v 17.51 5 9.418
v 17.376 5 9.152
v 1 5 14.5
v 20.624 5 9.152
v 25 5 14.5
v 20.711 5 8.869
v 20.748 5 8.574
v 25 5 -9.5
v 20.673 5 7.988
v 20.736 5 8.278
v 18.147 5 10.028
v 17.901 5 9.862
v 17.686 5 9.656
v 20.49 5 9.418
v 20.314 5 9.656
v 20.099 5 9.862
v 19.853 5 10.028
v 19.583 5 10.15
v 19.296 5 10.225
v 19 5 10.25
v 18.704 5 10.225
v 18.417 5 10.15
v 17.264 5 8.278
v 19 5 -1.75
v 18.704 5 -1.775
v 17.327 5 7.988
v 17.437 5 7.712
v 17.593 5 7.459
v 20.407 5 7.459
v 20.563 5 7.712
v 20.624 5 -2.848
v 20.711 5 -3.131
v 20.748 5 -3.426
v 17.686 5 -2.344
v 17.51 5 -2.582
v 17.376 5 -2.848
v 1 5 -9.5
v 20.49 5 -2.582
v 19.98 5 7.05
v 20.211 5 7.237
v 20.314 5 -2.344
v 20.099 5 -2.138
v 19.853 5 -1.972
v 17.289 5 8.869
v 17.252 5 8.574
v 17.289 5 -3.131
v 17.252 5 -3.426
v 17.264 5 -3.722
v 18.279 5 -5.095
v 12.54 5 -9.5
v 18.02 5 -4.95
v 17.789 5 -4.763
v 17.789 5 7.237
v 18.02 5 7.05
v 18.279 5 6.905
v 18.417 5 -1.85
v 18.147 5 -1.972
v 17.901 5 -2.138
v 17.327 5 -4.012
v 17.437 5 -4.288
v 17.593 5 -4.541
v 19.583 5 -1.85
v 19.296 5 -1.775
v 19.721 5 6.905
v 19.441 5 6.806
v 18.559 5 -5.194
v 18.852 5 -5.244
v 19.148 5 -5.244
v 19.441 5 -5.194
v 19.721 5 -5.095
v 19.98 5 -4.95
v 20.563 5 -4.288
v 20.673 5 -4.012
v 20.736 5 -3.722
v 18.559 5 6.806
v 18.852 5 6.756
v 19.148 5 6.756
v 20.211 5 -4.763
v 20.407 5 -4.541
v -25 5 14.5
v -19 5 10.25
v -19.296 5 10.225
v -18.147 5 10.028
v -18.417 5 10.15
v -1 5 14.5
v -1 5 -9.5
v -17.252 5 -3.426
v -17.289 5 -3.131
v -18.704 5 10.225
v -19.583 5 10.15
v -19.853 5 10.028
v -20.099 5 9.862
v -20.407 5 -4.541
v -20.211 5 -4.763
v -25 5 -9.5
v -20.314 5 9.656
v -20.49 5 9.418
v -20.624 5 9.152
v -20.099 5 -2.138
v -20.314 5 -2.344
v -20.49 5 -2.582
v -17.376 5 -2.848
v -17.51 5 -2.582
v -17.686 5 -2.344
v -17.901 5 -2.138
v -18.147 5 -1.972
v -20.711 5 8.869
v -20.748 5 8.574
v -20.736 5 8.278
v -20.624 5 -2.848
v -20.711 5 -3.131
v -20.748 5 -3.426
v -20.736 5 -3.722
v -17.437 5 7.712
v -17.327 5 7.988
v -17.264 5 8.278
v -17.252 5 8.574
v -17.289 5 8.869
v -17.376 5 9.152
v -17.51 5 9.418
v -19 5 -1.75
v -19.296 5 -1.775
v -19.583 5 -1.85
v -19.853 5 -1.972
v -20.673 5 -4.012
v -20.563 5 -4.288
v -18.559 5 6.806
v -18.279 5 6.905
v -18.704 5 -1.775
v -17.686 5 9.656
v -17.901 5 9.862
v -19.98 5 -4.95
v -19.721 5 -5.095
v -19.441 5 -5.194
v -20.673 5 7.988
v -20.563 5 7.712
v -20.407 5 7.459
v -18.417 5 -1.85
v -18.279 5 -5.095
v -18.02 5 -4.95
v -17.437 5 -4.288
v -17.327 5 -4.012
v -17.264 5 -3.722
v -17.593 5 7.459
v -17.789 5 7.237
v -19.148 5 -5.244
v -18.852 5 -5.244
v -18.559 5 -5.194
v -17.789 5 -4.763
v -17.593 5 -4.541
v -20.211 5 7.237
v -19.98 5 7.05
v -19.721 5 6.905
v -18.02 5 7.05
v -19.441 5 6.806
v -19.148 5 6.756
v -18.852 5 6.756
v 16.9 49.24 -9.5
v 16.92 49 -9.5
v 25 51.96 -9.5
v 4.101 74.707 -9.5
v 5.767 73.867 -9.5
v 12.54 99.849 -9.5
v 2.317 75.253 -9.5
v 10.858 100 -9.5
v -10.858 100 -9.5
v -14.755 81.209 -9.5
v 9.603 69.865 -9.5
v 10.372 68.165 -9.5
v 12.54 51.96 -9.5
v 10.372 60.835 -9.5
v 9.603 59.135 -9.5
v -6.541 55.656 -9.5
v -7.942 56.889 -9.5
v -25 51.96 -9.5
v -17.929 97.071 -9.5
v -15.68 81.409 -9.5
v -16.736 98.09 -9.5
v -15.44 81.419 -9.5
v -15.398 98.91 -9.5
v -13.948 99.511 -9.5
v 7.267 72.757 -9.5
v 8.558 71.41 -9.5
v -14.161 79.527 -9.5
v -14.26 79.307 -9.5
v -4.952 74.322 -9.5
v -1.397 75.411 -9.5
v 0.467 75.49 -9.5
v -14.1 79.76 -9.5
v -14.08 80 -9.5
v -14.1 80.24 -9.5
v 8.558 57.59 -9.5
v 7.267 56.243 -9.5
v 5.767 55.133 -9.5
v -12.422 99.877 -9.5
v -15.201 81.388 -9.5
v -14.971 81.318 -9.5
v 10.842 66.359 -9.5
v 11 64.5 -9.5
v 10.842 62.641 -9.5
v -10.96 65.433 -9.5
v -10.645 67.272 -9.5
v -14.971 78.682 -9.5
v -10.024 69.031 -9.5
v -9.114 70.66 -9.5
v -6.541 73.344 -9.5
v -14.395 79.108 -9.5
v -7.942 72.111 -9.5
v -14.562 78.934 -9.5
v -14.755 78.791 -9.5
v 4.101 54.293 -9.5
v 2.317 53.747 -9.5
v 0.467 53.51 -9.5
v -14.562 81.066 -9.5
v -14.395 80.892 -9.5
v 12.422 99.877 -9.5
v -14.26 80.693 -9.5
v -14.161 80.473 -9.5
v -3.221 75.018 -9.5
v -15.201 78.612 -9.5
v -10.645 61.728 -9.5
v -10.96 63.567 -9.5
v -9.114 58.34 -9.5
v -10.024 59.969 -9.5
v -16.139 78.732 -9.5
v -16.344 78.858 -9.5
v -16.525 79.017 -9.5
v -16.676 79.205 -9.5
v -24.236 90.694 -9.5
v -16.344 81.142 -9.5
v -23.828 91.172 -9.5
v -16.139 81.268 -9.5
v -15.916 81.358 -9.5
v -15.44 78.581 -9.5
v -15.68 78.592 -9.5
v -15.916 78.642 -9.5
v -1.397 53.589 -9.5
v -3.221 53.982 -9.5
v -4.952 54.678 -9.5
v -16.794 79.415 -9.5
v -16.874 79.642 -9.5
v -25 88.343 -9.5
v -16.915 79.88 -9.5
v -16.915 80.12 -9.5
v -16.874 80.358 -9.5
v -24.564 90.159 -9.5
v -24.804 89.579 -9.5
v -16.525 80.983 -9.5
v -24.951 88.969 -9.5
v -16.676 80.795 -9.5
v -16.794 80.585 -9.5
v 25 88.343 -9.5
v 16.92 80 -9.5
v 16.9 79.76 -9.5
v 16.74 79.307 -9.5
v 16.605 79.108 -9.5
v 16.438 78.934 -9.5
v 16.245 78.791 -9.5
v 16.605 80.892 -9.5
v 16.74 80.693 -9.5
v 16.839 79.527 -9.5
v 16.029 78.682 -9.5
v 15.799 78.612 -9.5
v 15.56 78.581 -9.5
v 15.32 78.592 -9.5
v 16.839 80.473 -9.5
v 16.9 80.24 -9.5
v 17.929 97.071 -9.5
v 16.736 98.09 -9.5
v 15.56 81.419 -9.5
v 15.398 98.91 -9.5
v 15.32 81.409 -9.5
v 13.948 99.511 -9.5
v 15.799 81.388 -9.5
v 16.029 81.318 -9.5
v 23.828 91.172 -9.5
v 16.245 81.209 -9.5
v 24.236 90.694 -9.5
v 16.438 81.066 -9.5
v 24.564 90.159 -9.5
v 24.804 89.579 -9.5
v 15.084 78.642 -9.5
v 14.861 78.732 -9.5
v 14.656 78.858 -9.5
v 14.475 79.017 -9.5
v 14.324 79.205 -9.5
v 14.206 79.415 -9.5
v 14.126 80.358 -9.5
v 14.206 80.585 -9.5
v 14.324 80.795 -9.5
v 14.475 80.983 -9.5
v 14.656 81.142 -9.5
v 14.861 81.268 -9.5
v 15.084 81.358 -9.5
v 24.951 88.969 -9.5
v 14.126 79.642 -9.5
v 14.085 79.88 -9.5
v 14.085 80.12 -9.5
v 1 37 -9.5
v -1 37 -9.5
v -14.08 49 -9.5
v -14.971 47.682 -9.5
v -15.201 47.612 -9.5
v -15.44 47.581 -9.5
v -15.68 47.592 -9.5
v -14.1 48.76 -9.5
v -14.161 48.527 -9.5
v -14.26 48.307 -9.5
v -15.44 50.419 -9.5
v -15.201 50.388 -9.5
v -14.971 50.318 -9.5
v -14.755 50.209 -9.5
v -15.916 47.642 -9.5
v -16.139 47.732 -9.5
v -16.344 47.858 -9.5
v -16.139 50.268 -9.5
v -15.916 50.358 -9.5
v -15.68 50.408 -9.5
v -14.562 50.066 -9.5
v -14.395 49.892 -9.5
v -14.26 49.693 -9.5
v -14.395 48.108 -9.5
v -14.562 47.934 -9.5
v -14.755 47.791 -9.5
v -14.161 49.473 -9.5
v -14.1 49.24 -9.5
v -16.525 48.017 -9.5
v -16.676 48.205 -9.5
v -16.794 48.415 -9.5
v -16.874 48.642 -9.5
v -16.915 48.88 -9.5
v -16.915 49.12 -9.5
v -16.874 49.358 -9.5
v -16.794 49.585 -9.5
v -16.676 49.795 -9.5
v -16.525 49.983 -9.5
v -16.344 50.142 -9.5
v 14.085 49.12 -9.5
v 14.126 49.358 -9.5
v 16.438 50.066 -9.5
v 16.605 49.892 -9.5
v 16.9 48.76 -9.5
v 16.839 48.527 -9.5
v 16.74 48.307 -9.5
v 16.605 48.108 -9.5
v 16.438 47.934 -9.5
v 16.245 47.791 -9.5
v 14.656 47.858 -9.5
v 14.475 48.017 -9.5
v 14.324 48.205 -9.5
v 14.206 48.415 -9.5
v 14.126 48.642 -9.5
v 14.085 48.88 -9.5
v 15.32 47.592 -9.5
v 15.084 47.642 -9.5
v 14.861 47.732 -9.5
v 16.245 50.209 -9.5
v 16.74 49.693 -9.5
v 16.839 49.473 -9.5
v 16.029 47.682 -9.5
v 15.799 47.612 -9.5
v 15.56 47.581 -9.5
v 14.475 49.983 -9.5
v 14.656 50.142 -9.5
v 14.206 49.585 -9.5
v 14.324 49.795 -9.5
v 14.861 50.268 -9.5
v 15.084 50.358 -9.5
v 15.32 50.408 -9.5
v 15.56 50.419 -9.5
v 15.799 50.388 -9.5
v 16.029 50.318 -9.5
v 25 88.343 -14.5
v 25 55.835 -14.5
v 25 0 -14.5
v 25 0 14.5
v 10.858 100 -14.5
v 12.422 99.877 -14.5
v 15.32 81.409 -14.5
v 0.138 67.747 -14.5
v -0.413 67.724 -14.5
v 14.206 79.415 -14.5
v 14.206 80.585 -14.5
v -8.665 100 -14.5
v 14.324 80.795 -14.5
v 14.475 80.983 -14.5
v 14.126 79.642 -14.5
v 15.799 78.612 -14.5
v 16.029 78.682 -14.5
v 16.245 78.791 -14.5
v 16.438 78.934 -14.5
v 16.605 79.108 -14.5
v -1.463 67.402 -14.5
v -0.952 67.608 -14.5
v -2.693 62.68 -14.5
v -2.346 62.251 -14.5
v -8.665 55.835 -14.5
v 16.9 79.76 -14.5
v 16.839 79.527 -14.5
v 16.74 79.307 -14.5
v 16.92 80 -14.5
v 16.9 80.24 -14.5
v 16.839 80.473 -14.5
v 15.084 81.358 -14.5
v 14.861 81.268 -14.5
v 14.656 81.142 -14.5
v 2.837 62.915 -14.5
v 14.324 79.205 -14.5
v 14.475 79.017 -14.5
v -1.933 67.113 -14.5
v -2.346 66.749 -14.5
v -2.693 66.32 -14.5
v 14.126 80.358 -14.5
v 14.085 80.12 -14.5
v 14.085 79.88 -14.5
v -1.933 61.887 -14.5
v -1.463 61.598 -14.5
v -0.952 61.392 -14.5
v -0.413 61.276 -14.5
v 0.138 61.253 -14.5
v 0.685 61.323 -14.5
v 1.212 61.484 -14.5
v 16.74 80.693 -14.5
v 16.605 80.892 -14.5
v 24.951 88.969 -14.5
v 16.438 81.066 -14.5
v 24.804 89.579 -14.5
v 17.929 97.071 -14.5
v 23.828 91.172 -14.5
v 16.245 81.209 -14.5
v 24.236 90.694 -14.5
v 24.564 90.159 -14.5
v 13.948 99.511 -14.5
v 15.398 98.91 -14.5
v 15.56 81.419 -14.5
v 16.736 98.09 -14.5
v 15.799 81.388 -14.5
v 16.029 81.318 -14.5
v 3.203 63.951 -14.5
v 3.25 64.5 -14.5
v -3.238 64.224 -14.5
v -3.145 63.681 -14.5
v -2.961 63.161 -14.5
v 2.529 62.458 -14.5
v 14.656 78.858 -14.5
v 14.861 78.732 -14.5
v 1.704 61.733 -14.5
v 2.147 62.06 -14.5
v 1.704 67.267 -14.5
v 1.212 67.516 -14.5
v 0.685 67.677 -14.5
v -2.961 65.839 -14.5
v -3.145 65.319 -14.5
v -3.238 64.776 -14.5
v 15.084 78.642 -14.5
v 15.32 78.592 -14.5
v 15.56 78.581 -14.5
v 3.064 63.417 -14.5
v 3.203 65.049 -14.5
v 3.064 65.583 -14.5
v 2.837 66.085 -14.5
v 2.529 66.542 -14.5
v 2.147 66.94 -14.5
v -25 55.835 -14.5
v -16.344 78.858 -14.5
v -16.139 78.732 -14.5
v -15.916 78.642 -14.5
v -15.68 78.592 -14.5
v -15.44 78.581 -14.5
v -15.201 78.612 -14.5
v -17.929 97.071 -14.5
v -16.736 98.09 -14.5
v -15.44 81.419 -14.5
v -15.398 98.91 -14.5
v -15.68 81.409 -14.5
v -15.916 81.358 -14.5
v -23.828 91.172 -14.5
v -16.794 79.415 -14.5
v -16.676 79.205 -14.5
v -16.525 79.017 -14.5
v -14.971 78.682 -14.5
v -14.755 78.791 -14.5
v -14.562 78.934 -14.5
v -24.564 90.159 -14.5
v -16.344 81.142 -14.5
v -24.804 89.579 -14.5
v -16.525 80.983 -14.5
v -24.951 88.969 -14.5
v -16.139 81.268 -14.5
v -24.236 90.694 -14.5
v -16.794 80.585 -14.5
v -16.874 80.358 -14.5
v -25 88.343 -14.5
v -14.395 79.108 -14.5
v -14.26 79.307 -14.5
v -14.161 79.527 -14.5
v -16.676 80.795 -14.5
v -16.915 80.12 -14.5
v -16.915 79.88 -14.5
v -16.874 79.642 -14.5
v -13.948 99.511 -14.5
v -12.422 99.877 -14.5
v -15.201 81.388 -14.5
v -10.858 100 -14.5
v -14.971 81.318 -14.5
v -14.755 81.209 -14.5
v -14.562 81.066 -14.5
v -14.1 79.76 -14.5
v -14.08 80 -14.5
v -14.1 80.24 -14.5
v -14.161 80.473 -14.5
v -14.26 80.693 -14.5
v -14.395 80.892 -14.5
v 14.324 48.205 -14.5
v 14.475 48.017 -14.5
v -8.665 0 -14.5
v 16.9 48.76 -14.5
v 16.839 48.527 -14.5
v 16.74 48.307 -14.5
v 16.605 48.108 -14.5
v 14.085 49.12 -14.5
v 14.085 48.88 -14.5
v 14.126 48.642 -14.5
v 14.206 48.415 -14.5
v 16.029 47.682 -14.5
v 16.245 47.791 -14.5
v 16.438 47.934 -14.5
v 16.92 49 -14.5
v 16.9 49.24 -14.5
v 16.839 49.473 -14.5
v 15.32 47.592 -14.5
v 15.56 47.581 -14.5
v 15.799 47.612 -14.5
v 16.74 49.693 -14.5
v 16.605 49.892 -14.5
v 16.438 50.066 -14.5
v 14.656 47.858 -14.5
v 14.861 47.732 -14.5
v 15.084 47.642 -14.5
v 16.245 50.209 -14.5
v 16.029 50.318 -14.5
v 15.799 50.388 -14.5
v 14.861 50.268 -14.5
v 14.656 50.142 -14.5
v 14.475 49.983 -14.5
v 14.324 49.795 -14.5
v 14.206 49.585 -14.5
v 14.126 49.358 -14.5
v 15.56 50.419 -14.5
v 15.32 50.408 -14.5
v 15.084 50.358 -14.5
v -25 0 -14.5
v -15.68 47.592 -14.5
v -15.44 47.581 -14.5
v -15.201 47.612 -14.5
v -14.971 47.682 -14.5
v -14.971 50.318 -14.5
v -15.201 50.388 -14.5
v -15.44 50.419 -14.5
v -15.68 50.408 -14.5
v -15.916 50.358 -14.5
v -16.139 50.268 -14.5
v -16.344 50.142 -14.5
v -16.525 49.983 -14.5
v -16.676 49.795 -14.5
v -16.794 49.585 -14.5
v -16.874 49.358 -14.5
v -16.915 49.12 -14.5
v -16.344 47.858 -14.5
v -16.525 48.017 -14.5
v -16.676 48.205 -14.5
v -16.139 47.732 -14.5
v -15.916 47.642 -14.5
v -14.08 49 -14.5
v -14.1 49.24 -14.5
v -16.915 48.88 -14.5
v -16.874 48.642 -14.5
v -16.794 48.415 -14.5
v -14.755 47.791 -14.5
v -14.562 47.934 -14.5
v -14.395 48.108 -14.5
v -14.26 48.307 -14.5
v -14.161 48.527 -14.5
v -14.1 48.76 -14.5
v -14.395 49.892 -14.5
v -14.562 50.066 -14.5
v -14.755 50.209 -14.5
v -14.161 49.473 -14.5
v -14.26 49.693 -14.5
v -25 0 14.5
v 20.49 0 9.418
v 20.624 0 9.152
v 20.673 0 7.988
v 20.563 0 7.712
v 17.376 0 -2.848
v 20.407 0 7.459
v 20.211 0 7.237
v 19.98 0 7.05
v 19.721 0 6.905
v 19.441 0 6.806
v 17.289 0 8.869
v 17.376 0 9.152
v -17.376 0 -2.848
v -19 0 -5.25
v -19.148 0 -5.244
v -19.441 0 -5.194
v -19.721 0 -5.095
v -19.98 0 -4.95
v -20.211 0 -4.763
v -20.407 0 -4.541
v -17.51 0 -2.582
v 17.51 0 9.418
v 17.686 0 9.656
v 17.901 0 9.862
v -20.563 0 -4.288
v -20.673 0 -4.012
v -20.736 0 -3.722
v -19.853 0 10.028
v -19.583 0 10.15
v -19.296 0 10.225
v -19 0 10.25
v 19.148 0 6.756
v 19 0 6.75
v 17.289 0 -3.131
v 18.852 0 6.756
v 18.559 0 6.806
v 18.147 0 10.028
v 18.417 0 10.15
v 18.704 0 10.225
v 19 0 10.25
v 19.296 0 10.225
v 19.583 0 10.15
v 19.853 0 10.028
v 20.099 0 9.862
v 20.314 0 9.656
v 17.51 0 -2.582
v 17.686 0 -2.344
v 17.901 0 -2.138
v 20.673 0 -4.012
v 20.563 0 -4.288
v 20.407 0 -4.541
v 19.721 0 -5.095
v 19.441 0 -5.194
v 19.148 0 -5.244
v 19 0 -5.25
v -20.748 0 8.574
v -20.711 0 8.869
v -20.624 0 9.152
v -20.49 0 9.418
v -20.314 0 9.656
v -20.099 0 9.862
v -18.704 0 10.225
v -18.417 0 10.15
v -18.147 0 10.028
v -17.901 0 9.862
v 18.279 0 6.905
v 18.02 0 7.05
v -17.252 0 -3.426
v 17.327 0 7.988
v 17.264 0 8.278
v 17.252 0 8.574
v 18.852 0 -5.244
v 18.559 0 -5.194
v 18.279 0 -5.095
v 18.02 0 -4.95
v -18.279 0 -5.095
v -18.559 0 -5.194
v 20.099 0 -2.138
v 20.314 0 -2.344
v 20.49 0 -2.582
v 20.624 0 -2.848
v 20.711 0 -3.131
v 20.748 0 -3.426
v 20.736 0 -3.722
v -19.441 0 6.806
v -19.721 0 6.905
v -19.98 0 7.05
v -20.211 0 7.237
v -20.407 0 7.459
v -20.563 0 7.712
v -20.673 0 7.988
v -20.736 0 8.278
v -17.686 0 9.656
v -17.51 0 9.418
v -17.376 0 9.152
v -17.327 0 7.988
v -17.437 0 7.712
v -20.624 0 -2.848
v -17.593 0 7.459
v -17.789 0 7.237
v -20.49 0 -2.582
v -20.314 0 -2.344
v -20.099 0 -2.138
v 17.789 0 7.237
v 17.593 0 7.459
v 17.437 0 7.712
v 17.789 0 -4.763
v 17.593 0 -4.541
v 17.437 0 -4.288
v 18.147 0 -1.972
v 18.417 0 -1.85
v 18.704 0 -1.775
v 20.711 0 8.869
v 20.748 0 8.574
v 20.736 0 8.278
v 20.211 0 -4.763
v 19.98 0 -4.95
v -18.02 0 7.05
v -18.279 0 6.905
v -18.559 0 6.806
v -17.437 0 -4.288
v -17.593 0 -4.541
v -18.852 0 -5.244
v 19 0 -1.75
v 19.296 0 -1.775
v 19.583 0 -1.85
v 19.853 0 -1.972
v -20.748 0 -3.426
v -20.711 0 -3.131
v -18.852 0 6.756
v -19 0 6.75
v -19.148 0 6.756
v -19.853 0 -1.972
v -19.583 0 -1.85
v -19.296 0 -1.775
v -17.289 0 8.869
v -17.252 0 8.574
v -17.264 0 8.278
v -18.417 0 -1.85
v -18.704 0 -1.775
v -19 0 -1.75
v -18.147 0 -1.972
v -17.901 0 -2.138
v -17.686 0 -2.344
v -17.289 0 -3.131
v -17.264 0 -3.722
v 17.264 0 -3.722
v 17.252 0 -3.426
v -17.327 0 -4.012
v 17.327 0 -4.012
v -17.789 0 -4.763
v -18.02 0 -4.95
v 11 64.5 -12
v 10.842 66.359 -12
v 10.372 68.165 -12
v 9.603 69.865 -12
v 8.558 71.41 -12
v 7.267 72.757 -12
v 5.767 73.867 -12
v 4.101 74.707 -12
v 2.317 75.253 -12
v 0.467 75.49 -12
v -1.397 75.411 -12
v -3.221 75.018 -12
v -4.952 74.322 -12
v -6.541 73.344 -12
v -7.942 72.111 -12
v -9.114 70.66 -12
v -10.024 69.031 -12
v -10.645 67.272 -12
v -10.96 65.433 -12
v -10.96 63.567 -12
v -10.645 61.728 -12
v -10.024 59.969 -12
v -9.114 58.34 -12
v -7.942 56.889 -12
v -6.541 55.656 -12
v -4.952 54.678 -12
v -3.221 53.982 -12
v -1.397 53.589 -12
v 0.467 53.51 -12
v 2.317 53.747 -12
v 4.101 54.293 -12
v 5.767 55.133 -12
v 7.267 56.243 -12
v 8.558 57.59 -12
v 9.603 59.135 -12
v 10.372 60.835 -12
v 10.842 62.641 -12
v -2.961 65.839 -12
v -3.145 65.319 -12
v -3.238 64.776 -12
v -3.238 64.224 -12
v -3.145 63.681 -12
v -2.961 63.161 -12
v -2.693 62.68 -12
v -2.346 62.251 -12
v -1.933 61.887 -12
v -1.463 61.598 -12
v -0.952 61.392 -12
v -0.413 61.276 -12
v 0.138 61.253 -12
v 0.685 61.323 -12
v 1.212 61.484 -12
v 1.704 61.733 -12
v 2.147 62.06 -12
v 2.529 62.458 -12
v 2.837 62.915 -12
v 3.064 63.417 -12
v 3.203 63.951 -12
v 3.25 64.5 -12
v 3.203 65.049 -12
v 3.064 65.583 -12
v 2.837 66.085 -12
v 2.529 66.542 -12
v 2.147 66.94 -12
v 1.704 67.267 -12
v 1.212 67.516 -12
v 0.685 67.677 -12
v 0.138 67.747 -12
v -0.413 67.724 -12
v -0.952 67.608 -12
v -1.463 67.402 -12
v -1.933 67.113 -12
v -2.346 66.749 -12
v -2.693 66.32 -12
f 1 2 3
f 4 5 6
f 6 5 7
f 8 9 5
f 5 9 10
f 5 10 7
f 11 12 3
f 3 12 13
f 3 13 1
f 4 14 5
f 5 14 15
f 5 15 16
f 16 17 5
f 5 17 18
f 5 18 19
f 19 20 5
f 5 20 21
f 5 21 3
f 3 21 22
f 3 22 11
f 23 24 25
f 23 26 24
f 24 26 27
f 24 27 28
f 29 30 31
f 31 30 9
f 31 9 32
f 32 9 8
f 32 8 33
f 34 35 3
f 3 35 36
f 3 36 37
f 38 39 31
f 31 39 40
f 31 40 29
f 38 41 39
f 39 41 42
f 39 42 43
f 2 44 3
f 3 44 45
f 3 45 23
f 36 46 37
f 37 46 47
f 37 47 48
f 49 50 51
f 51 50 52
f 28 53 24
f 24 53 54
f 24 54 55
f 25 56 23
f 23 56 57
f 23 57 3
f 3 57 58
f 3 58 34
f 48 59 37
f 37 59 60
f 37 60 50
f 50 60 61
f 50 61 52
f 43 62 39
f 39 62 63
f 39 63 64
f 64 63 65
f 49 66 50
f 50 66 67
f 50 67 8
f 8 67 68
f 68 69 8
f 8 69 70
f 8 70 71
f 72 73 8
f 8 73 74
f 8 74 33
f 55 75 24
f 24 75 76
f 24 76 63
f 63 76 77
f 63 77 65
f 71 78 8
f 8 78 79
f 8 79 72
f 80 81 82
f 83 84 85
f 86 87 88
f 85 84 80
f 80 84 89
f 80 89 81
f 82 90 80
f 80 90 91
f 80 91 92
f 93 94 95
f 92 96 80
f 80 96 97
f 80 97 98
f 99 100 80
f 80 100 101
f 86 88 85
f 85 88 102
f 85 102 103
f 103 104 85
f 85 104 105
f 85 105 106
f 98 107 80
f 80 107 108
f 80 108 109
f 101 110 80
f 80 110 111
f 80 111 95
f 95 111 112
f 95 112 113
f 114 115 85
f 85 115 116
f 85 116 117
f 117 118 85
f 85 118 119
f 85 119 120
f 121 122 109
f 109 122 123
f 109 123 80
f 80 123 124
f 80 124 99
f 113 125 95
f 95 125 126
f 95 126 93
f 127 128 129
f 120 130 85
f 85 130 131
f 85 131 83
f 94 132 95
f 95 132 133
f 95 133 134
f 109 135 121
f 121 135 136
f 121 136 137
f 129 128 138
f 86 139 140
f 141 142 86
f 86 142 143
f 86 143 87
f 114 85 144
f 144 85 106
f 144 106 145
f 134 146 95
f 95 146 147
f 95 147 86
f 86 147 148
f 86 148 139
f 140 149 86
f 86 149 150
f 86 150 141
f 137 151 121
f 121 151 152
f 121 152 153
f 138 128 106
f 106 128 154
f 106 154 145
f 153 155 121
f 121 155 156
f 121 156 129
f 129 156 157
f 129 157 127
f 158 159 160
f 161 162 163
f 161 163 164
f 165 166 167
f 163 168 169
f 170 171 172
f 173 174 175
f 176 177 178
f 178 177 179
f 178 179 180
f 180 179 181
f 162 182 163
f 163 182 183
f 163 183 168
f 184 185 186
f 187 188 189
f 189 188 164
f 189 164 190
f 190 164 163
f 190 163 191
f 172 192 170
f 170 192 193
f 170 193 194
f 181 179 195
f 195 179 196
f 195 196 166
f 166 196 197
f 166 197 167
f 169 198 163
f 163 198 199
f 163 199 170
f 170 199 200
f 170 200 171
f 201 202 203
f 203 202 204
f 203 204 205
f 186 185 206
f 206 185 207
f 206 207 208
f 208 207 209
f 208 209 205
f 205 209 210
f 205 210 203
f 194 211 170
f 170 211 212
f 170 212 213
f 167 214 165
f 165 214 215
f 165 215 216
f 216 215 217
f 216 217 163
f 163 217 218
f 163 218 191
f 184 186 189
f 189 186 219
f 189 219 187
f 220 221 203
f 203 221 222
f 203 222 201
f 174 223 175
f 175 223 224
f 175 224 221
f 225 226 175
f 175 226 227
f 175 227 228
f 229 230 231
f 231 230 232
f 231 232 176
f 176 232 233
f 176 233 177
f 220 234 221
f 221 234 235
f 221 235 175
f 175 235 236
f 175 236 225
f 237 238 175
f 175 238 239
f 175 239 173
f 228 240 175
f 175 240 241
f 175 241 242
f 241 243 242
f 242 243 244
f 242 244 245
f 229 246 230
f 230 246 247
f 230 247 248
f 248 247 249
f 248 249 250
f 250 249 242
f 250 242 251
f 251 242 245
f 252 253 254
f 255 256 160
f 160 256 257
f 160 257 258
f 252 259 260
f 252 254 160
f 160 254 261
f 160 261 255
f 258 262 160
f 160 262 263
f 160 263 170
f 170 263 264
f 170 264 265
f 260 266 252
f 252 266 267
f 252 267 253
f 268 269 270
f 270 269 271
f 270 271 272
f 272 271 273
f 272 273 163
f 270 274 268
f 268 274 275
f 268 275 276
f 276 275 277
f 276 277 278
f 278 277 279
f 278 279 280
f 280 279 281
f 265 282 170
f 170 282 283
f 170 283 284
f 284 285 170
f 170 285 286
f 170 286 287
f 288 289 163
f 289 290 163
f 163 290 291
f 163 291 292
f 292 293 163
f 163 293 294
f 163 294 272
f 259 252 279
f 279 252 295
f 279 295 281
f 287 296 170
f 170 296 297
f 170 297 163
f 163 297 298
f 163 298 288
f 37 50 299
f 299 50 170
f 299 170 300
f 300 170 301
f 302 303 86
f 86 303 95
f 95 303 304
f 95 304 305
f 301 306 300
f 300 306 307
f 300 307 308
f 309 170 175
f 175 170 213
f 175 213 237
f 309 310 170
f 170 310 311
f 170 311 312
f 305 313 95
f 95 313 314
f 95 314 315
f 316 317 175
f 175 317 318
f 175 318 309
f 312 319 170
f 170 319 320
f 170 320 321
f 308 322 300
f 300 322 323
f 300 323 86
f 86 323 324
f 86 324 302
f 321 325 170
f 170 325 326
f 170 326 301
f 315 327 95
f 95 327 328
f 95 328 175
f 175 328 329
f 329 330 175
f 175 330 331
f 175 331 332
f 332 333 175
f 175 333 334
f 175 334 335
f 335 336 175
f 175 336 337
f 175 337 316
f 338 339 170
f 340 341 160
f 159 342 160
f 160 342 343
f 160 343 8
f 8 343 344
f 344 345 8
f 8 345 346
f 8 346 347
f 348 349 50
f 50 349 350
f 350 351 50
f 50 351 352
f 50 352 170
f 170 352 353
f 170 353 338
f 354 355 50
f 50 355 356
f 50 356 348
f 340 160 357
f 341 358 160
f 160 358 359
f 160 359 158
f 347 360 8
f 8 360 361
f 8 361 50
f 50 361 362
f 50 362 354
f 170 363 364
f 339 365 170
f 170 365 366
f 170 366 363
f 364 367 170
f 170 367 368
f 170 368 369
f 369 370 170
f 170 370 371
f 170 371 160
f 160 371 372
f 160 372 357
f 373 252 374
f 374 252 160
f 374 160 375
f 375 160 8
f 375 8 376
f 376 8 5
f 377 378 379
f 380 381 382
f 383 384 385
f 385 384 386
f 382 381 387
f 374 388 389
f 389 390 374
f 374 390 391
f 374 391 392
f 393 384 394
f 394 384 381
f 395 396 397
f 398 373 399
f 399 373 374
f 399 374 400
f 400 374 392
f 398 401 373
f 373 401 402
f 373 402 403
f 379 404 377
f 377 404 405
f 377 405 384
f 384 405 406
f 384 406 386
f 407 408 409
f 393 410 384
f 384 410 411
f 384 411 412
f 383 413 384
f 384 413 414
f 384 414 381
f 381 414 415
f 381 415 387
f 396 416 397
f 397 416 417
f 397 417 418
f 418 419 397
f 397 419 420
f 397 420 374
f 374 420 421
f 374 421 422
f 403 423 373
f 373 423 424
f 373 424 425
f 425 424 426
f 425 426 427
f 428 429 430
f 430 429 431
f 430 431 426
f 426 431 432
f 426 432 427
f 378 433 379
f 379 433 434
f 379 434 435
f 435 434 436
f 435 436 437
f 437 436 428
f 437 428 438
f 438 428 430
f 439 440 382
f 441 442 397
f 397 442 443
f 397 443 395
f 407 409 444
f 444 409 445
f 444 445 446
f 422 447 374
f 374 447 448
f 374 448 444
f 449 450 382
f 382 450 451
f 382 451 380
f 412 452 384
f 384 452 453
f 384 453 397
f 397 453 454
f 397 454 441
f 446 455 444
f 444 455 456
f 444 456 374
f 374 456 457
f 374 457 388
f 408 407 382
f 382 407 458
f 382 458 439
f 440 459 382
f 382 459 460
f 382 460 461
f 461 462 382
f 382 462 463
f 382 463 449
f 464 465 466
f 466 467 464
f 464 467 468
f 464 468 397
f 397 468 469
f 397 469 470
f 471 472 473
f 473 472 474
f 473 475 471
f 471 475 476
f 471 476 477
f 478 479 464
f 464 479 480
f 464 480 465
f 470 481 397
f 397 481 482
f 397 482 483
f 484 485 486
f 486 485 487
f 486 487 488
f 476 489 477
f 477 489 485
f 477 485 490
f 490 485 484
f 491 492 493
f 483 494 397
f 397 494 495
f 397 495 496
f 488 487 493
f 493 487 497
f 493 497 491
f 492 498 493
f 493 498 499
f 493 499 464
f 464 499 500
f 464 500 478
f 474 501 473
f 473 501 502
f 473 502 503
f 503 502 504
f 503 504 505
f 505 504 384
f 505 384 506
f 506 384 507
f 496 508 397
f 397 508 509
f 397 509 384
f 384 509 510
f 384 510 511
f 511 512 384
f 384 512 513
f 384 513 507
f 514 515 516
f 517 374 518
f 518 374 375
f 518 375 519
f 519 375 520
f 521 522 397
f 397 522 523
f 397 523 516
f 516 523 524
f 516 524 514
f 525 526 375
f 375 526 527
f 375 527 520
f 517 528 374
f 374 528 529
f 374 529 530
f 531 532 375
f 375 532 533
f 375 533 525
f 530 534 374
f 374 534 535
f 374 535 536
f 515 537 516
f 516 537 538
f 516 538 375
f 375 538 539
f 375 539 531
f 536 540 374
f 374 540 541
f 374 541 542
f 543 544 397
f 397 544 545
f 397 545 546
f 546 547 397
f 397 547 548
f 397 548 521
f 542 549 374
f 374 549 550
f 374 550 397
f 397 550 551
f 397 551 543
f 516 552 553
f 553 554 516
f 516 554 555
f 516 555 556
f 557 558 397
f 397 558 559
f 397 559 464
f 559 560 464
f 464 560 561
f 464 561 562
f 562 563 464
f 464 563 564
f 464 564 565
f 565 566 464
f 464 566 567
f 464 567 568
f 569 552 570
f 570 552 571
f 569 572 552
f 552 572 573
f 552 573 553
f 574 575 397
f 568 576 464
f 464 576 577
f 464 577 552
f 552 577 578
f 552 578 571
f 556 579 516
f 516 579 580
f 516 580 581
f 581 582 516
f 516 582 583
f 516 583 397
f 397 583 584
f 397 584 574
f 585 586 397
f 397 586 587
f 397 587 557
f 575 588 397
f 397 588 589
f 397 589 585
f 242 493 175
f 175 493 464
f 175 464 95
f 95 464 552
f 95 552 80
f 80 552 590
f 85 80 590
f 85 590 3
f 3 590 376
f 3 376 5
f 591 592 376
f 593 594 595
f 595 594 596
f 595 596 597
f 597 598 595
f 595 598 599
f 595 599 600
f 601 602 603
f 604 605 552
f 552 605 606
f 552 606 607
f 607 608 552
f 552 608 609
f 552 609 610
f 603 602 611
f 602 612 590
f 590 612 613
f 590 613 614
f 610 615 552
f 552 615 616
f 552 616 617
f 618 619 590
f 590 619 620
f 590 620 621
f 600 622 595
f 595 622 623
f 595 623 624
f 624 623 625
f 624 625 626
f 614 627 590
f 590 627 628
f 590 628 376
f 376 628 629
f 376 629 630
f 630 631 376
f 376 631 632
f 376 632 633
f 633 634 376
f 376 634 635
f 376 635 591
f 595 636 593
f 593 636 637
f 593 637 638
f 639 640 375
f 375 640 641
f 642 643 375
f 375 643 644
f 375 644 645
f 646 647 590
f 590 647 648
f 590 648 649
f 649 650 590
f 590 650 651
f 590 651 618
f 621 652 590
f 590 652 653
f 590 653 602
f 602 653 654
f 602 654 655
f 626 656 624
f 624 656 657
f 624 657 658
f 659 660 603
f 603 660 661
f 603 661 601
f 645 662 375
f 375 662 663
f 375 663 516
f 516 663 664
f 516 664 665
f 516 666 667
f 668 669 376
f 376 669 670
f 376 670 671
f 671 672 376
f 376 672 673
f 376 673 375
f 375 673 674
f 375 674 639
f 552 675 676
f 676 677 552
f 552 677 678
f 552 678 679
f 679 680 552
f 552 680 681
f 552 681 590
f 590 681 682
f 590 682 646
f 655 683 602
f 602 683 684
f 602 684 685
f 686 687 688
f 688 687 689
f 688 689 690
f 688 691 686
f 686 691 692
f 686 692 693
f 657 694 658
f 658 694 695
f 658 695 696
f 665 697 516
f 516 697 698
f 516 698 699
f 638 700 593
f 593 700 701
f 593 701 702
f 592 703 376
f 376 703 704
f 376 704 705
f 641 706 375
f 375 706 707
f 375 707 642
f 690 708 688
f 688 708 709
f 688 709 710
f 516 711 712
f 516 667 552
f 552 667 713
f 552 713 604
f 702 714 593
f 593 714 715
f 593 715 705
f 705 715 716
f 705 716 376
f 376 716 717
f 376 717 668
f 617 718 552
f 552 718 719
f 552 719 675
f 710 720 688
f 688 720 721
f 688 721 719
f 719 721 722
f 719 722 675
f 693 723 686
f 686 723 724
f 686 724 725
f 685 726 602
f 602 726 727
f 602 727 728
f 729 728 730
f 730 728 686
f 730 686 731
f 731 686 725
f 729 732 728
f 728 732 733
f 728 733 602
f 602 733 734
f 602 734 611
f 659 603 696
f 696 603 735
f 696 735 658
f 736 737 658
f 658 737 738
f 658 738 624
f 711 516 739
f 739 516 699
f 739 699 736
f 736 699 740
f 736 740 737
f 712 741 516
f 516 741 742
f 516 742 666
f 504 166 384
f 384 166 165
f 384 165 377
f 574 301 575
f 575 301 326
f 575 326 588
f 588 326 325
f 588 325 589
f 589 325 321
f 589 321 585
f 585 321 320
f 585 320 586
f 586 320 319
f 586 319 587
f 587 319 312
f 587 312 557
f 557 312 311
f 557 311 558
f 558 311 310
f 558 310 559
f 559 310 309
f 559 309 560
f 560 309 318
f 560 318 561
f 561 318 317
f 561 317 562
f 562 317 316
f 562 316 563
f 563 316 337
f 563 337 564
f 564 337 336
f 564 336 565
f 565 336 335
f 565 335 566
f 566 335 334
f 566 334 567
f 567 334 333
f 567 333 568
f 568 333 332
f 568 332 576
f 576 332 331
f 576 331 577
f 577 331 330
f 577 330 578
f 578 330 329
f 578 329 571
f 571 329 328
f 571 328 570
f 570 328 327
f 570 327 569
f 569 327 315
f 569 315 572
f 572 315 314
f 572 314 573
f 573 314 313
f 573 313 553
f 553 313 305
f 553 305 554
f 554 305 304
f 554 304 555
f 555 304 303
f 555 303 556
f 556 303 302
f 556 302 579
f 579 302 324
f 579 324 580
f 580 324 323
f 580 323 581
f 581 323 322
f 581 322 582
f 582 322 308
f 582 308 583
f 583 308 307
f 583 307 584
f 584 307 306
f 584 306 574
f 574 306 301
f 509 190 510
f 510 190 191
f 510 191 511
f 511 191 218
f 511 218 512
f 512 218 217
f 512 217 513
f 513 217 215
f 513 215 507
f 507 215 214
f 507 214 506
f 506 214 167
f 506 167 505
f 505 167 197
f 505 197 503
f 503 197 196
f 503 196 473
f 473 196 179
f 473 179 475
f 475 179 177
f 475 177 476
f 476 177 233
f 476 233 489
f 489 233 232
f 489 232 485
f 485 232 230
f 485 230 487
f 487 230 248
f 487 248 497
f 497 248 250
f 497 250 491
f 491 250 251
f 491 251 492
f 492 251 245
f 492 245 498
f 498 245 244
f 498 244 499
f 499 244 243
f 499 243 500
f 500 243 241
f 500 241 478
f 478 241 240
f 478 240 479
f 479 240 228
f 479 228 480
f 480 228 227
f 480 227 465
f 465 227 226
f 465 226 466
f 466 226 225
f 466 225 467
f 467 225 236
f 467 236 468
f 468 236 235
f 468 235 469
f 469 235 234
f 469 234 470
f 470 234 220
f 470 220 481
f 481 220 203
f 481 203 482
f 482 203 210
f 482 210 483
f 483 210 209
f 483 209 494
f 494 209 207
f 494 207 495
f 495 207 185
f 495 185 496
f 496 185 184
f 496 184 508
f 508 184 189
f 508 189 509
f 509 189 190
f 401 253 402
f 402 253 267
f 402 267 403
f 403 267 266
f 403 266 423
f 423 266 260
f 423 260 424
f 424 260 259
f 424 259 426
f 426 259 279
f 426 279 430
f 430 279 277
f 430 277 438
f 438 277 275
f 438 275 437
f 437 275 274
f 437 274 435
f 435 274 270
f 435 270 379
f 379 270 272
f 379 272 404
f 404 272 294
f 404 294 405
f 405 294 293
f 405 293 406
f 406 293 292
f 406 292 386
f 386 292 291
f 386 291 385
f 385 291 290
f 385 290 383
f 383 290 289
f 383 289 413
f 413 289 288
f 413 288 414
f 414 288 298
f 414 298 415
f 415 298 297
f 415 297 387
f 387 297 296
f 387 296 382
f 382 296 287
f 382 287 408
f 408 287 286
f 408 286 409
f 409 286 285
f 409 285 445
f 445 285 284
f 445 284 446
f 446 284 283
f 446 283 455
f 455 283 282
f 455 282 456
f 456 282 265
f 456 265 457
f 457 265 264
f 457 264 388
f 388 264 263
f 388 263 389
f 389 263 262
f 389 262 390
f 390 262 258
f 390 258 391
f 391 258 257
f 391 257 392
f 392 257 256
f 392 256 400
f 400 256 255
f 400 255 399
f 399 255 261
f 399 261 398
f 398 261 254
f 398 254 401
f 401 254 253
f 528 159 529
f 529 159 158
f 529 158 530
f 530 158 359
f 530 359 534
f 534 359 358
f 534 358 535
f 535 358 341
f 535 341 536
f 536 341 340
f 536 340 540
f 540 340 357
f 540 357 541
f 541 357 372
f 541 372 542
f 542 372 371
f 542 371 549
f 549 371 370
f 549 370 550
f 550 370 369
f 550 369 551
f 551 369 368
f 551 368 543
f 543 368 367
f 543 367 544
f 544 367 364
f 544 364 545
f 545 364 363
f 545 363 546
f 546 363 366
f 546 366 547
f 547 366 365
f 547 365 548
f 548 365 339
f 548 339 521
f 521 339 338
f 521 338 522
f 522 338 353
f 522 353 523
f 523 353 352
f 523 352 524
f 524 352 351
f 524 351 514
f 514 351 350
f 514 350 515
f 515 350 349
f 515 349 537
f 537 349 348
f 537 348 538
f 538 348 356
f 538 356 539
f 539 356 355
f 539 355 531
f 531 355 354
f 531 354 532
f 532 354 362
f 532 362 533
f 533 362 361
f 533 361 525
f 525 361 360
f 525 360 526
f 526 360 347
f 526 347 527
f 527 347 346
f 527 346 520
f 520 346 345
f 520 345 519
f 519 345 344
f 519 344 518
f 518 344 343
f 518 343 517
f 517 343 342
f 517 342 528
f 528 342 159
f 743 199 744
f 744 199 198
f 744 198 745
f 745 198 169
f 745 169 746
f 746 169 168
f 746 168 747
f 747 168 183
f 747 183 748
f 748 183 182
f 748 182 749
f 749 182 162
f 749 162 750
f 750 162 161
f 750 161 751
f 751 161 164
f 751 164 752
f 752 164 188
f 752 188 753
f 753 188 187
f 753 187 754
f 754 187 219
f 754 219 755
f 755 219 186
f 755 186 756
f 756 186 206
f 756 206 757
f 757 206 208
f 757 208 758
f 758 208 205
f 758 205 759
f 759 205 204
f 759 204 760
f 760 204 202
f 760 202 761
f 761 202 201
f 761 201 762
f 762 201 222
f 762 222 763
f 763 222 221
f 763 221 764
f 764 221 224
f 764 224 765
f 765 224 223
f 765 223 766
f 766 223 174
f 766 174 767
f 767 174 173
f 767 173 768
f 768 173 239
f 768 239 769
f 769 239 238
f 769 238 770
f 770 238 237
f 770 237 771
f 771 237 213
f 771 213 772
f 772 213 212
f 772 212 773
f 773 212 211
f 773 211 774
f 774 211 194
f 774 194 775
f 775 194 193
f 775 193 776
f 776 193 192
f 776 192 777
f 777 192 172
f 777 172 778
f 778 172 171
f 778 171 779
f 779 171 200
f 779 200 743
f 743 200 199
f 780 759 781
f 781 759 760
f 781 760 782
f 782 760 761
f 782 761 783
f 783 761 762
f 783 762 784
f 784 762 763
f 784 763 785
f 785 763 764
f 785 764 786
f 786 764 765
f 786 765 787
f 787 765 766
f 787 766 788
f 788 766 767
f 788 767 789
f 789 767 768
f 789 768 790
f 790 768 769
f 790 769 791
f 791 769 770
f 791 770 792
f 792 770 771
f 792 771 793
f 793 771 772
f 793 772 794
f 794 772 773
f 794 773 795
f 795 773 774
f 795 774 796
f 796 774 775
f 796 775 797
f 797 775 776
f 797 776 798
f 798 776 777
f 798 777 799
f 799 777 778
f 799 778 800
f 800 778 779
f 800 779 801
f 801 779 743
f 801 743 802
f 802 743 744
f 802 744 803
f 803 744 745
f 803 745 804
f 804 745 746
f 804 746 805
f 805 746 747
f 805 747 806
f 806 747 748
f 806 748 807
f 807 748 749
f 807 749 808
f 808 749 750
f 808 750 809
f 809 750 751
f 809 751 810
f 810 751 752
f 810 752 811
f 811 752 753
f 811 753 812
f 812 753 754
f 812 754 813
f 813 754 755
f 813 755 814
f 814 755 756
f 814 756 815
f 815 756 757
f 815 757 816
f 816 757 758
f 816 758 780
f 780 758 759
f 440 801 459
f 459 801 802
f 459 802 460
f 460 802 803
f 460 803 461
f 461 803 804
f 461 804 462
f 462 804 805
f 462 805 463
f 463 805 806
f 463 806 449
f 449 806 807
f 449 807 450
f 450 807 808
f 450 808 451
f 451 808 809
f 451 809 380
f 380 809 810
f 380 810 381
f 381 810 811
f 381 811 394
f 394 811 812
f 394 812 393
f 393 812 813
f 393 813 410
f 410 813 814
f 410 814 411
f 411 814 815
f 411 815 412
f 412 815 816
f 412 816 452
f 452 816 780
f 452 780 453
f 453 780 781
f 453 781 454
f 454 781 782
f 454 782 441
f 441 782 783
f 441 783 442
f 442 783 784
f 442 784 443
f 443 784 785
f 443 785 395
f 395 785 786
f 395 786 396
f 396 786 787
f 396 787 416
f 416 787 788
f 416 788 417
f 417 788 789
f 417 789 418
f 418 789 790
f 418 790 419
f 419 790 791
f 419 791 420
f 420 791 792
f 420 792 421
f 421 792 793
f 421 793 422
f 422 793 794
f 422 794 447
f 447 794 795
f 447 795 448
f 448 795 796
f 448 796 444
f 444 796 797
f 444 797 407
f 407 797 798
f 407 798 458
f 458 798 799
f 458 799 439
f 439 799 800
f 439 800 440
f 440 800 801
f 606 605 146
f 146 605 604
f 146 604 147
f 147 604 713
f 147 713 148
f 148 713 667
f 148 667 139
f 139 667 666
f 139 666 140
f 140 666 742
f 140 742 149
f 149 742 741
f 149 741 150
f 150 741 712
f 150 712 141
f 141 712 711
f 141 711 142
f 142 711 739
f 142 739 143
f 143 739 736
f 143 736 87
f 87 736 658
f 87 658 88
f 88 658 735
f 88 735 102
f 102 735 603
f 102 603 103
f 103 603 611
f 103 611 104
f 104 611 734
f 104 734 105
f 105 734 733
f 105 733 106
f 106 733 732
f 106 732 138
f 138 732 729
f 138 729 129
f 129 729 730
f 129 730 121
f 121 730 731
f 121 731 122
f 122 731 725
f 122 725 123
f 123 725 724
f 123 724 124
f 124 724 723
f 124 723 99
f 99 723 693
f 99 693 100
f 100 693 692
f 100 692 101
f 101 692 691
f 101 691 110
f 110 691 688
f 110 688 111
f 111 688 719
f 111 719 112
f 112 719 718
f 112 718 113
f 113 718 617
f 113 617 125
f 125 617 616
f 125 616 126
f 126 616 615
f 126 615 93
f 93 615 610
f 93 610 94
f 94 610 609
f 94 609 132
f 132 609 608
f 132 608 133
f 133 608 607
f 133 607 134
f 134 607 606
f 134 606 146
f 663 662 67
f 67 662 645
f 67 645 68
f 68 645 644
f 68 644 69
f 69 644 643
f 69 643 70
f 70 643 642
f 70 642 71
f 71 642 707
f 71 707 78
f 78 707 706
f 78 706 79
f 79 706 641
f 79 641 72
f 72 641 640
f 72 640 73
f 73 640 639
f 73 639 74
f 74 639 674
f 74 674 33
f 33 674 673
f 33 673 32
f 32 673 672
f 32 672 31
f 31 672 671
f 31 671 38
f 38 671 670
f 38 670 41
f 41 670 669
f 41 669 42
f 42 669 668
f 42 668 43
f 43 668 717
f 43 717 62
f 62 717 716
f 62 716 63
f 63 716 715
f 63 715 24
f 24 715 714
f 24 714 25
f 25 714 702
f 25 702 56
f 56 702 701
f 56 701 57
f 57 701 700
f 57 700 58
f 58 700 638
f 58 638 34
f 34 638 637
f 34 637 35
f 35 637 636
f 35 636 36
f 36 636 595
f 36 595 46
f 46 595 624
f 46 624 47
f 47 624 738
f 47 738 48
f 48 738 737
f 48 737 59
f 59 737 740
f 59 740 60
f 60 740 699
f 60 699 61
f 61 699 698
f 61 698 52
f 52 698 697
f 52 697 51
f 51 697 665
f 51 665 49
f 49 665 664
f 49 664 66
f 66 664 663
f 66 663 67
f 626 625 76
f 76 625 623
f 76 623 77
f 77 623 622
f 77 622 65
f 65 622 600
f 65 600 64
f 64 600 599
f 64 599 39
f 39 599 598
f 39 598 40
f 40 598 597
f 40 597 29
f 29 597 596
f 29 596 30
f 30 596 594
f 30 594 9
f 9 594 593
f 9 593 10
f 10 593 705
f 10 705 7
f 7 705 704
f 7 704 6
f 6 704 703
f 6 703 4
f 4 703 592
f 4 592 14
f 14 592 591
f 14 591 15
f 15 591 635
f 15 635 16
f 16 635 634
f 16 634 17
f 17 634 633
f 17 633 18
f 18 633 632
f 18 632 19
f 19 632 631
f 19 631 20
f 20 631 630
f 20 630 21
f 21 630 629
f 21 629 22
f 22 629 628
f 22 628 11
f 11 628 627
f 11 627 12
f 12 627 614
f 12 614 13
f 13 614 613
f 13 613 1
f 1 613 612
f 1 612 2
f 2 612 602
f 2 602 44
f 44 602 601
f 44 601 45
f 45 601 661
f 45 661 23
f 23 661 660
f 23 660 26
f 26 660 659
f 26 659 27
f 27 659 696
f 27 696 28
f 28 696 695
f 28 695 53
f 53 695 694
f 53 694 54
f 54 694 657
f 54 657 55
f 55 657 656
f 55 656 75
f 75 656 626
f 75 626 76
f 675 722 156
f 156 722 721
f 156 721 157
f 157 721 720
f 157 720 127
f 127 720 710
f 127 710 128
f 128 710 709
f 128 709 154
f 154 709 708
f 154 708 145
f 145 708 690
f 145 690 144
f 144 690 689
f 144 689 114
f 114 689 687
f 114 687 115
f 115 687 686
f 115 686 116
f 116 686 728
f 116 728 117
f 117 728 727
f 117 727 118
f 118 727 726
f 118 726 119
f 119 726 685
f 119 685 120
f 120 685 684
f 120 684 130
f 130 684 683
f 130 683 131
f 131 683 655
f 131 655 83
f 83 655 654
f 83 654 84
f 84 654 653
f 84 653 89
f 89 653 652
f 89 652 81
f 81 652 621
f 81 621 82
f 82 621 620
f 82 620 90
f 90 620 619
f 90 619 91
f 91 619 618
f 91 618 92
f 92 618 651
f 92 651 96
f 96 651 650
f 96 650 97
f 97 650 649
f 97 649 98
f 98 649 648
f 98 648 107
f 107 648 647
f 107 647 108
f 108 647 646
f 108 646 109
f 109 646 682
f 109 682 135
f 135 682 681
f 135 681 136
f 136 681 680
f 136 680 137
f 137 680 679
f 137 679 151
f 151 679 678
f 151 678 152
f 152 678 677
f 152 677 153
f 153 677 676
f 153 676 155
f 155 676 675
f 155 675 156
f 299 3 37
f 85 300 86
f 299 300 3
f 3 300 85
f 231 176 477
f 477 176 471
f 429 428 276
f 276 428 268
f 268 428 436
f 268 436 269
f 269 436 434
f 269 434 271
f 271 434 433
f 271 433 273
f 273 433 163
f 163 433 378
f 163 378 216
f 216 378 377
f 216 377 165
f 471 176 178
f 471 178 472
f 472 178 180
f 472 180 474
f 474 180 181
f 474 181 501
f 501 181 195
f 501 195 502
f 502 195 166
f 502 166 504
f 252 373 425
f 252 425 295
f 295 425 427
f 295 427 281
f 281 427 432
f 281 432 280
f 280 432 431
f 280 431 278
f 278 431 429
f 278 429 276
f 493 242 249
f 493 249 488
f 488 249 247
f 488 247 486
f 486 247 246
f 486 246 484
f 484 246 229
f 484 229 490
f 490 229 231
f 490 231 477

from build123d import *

# Parameters (mm, degrees)
SKETCH1_W           = 50
SKETCH1_H           = 29
BOSS_EXTRUDE1_DEPTH = 5
SKETCH2_W           = 50
SKETCH2_H           = 5
BOSS_EXTRUDE2_DEPTH = 95
SKETCH3_R           = 1.42
CUT_EXTRUDE1_DEPTH  = 60
SKETCH4_R           = 11.1
CUT_EXTRUDE2_DEPTH  = 2.5
SKETCH5_R           = 3.25
CUT_EXTRUDE3_DEPTH  = 10
SKETCH6_R           = 1.75
CUT_EXTRUDE4_DEPTH  = 10
SKETCH8_W           = 2
SKETCH8_H           = 24
BOSS_EXTRUDE3_DEPTH = 32
CUT_EXTRUDE5_DEPTH  = 35
CHAMFER1_SIZE       = 10
FILLET2_R           = 10
FILLET3_R           = 4
FILLET4_R           = 4


with BuildPart() as part:
    # Sketch1 → Boss-Extrude1 (new body)
    with BuildSketch(Plane(origin=(0, 0, 0), x_dir=(1, 0, 0), z_dir=(0, 1, 0))):
        Rectangle(SKETCH1_W, SKETCH1_H)
    extrude(amount=BOSS_EXTRUDE1_DEPTH)

    # Sketch2 → Boss-Extrude2 (add)
    with BuildSketch(Plane(origin=(0, 5, 0), x_dir=(1, 0, 0), z_dir=(0, 1, 0))):
        with Locations((0, 12)):
            Rectangle(SKETCH2_W, SKETCH2_H)
    extrude(amount=BOSS_EXTRUDE2_DEPTH)

    # Sketch3 → Cut-Extrude1 (cut)
    with BuildSketch(Plane.XY.offset(-9.5)):
        with Locations((-15.5, 49)):
            Circle(SKETCH3_R)
        with Locations((15.5, 49)):
            Circle(SKETCH3_R)
        with Locations((15.5, 80)):
            Circle(SKETCH3_R)
        with Locations((-15.5, 80)):
            Circle(SKETCH3_R)
    extrude(amount=-CUT_EXTRUDE1_DEPTH, mode=Mode.SUBTRACT)

    # Sketch4 → Cut-Extrude2 (cut)
    with BuildSketch(Plane.XY.offset(-9.5)):
        with Locations((0, 64.5)):
            Circle(SKETCH4_R)
    extrude(amount=-CUT_EXTRUDE2_DEPTH, mode=Mode.SUBTRACT)

    # Sketch5 → Cut-Extrude3 (cut)
    with BuildSketch(Plane.XY.offset(-12)):
        with Locations((0, 64.5)):
            Circle(SKETCH5_R)
    extrude(amount=-CUT_EXTRUDE3_DEPTH, mode=Mode.SUBTRACT)

    # Sketch6 → Cut-Extrude4 (cut)
    with BuildSketch(Plane(origin=(0, 5, 0), x_dir=(1, 0, 0), z_dir=(0, 1, 0))):
        with Locations(Location((-19, 3.5, 0), (0, 0, 270))):
            Circle(SKETCH6_R)
        with Locations(Location((-19, -8.5, 0), (0, 0, 270))):
            Circle(SKETCH6_R)
        with Locations(Location((19, -8.5, 0), (0, 0, 270))):
            Circle(SKETCH6_R)
        with Locations(Location((19, 3.5, 0), (0, 0, 270))):
            Circle(SKETCH6_R)
    extrude(amount=-CUT_EXTRUDE4_DEPTH, mode=Mode.SUBTRACT)

    # Sketch8 → Boss-Extrude3 (add)
    with BuildSketch(Plane(origin=(0, 5, 0), x_dir=(1, 0, 0), z_dir=(0, 1, 0))):
        with Locations((0, -2.5)):
            Rectangle(SKETCH8_W, SKETCH8_H)
    extrude(amount=BOSS_EXTRUDE3_DEPTH)

    # Sketch9 → Cut-Extrude5 (cut)
    with BuildSketch(Plane(origin=(1, 0, 0), x_dir=(0, 0, -1), z_dir=(1, 0, 0))):
        Polygon((9.5, 37), (-14.5, 5), (-14.5, 37), align=None)
    extrude(amount=-CUT_EXTRUDE5_DEPTH, mode=Mode.SUBTRACT)

    # Chamfer1
    chamfer1_edges = [part.edges().sort_by_distance(p)[0] for p in [
        (-25, 100, -12),
        (25, 100, -12),
    ]]
    chamfer(chamfer1_edges, length=CHAMFER1_SIZE)

    # Fillet2
    fillet2_edges = [part.edges().sort_by_distance(p)[0] for p in [
        (15, 100, -12),
        (-15, 100, -12),
    ]]
    fillet(fillet2_edges, radius=FILLET2_R)

    # Fillet3
    fillet3_edges = [part.edges().sort_by_distance(p)[0] for p in [
        (25, 90, -12),
    ]]
    fillet(fillet3_edges, radius=FILLET3_R)

    # Fillet4
    fillet4_edges = [part.edges().sort_by_distance(p)[0] for p in [
        (-25, 90, -12),
    ]]
    fillet(fillet4_edges, radius=FILLET4_R)


solid = part.part
